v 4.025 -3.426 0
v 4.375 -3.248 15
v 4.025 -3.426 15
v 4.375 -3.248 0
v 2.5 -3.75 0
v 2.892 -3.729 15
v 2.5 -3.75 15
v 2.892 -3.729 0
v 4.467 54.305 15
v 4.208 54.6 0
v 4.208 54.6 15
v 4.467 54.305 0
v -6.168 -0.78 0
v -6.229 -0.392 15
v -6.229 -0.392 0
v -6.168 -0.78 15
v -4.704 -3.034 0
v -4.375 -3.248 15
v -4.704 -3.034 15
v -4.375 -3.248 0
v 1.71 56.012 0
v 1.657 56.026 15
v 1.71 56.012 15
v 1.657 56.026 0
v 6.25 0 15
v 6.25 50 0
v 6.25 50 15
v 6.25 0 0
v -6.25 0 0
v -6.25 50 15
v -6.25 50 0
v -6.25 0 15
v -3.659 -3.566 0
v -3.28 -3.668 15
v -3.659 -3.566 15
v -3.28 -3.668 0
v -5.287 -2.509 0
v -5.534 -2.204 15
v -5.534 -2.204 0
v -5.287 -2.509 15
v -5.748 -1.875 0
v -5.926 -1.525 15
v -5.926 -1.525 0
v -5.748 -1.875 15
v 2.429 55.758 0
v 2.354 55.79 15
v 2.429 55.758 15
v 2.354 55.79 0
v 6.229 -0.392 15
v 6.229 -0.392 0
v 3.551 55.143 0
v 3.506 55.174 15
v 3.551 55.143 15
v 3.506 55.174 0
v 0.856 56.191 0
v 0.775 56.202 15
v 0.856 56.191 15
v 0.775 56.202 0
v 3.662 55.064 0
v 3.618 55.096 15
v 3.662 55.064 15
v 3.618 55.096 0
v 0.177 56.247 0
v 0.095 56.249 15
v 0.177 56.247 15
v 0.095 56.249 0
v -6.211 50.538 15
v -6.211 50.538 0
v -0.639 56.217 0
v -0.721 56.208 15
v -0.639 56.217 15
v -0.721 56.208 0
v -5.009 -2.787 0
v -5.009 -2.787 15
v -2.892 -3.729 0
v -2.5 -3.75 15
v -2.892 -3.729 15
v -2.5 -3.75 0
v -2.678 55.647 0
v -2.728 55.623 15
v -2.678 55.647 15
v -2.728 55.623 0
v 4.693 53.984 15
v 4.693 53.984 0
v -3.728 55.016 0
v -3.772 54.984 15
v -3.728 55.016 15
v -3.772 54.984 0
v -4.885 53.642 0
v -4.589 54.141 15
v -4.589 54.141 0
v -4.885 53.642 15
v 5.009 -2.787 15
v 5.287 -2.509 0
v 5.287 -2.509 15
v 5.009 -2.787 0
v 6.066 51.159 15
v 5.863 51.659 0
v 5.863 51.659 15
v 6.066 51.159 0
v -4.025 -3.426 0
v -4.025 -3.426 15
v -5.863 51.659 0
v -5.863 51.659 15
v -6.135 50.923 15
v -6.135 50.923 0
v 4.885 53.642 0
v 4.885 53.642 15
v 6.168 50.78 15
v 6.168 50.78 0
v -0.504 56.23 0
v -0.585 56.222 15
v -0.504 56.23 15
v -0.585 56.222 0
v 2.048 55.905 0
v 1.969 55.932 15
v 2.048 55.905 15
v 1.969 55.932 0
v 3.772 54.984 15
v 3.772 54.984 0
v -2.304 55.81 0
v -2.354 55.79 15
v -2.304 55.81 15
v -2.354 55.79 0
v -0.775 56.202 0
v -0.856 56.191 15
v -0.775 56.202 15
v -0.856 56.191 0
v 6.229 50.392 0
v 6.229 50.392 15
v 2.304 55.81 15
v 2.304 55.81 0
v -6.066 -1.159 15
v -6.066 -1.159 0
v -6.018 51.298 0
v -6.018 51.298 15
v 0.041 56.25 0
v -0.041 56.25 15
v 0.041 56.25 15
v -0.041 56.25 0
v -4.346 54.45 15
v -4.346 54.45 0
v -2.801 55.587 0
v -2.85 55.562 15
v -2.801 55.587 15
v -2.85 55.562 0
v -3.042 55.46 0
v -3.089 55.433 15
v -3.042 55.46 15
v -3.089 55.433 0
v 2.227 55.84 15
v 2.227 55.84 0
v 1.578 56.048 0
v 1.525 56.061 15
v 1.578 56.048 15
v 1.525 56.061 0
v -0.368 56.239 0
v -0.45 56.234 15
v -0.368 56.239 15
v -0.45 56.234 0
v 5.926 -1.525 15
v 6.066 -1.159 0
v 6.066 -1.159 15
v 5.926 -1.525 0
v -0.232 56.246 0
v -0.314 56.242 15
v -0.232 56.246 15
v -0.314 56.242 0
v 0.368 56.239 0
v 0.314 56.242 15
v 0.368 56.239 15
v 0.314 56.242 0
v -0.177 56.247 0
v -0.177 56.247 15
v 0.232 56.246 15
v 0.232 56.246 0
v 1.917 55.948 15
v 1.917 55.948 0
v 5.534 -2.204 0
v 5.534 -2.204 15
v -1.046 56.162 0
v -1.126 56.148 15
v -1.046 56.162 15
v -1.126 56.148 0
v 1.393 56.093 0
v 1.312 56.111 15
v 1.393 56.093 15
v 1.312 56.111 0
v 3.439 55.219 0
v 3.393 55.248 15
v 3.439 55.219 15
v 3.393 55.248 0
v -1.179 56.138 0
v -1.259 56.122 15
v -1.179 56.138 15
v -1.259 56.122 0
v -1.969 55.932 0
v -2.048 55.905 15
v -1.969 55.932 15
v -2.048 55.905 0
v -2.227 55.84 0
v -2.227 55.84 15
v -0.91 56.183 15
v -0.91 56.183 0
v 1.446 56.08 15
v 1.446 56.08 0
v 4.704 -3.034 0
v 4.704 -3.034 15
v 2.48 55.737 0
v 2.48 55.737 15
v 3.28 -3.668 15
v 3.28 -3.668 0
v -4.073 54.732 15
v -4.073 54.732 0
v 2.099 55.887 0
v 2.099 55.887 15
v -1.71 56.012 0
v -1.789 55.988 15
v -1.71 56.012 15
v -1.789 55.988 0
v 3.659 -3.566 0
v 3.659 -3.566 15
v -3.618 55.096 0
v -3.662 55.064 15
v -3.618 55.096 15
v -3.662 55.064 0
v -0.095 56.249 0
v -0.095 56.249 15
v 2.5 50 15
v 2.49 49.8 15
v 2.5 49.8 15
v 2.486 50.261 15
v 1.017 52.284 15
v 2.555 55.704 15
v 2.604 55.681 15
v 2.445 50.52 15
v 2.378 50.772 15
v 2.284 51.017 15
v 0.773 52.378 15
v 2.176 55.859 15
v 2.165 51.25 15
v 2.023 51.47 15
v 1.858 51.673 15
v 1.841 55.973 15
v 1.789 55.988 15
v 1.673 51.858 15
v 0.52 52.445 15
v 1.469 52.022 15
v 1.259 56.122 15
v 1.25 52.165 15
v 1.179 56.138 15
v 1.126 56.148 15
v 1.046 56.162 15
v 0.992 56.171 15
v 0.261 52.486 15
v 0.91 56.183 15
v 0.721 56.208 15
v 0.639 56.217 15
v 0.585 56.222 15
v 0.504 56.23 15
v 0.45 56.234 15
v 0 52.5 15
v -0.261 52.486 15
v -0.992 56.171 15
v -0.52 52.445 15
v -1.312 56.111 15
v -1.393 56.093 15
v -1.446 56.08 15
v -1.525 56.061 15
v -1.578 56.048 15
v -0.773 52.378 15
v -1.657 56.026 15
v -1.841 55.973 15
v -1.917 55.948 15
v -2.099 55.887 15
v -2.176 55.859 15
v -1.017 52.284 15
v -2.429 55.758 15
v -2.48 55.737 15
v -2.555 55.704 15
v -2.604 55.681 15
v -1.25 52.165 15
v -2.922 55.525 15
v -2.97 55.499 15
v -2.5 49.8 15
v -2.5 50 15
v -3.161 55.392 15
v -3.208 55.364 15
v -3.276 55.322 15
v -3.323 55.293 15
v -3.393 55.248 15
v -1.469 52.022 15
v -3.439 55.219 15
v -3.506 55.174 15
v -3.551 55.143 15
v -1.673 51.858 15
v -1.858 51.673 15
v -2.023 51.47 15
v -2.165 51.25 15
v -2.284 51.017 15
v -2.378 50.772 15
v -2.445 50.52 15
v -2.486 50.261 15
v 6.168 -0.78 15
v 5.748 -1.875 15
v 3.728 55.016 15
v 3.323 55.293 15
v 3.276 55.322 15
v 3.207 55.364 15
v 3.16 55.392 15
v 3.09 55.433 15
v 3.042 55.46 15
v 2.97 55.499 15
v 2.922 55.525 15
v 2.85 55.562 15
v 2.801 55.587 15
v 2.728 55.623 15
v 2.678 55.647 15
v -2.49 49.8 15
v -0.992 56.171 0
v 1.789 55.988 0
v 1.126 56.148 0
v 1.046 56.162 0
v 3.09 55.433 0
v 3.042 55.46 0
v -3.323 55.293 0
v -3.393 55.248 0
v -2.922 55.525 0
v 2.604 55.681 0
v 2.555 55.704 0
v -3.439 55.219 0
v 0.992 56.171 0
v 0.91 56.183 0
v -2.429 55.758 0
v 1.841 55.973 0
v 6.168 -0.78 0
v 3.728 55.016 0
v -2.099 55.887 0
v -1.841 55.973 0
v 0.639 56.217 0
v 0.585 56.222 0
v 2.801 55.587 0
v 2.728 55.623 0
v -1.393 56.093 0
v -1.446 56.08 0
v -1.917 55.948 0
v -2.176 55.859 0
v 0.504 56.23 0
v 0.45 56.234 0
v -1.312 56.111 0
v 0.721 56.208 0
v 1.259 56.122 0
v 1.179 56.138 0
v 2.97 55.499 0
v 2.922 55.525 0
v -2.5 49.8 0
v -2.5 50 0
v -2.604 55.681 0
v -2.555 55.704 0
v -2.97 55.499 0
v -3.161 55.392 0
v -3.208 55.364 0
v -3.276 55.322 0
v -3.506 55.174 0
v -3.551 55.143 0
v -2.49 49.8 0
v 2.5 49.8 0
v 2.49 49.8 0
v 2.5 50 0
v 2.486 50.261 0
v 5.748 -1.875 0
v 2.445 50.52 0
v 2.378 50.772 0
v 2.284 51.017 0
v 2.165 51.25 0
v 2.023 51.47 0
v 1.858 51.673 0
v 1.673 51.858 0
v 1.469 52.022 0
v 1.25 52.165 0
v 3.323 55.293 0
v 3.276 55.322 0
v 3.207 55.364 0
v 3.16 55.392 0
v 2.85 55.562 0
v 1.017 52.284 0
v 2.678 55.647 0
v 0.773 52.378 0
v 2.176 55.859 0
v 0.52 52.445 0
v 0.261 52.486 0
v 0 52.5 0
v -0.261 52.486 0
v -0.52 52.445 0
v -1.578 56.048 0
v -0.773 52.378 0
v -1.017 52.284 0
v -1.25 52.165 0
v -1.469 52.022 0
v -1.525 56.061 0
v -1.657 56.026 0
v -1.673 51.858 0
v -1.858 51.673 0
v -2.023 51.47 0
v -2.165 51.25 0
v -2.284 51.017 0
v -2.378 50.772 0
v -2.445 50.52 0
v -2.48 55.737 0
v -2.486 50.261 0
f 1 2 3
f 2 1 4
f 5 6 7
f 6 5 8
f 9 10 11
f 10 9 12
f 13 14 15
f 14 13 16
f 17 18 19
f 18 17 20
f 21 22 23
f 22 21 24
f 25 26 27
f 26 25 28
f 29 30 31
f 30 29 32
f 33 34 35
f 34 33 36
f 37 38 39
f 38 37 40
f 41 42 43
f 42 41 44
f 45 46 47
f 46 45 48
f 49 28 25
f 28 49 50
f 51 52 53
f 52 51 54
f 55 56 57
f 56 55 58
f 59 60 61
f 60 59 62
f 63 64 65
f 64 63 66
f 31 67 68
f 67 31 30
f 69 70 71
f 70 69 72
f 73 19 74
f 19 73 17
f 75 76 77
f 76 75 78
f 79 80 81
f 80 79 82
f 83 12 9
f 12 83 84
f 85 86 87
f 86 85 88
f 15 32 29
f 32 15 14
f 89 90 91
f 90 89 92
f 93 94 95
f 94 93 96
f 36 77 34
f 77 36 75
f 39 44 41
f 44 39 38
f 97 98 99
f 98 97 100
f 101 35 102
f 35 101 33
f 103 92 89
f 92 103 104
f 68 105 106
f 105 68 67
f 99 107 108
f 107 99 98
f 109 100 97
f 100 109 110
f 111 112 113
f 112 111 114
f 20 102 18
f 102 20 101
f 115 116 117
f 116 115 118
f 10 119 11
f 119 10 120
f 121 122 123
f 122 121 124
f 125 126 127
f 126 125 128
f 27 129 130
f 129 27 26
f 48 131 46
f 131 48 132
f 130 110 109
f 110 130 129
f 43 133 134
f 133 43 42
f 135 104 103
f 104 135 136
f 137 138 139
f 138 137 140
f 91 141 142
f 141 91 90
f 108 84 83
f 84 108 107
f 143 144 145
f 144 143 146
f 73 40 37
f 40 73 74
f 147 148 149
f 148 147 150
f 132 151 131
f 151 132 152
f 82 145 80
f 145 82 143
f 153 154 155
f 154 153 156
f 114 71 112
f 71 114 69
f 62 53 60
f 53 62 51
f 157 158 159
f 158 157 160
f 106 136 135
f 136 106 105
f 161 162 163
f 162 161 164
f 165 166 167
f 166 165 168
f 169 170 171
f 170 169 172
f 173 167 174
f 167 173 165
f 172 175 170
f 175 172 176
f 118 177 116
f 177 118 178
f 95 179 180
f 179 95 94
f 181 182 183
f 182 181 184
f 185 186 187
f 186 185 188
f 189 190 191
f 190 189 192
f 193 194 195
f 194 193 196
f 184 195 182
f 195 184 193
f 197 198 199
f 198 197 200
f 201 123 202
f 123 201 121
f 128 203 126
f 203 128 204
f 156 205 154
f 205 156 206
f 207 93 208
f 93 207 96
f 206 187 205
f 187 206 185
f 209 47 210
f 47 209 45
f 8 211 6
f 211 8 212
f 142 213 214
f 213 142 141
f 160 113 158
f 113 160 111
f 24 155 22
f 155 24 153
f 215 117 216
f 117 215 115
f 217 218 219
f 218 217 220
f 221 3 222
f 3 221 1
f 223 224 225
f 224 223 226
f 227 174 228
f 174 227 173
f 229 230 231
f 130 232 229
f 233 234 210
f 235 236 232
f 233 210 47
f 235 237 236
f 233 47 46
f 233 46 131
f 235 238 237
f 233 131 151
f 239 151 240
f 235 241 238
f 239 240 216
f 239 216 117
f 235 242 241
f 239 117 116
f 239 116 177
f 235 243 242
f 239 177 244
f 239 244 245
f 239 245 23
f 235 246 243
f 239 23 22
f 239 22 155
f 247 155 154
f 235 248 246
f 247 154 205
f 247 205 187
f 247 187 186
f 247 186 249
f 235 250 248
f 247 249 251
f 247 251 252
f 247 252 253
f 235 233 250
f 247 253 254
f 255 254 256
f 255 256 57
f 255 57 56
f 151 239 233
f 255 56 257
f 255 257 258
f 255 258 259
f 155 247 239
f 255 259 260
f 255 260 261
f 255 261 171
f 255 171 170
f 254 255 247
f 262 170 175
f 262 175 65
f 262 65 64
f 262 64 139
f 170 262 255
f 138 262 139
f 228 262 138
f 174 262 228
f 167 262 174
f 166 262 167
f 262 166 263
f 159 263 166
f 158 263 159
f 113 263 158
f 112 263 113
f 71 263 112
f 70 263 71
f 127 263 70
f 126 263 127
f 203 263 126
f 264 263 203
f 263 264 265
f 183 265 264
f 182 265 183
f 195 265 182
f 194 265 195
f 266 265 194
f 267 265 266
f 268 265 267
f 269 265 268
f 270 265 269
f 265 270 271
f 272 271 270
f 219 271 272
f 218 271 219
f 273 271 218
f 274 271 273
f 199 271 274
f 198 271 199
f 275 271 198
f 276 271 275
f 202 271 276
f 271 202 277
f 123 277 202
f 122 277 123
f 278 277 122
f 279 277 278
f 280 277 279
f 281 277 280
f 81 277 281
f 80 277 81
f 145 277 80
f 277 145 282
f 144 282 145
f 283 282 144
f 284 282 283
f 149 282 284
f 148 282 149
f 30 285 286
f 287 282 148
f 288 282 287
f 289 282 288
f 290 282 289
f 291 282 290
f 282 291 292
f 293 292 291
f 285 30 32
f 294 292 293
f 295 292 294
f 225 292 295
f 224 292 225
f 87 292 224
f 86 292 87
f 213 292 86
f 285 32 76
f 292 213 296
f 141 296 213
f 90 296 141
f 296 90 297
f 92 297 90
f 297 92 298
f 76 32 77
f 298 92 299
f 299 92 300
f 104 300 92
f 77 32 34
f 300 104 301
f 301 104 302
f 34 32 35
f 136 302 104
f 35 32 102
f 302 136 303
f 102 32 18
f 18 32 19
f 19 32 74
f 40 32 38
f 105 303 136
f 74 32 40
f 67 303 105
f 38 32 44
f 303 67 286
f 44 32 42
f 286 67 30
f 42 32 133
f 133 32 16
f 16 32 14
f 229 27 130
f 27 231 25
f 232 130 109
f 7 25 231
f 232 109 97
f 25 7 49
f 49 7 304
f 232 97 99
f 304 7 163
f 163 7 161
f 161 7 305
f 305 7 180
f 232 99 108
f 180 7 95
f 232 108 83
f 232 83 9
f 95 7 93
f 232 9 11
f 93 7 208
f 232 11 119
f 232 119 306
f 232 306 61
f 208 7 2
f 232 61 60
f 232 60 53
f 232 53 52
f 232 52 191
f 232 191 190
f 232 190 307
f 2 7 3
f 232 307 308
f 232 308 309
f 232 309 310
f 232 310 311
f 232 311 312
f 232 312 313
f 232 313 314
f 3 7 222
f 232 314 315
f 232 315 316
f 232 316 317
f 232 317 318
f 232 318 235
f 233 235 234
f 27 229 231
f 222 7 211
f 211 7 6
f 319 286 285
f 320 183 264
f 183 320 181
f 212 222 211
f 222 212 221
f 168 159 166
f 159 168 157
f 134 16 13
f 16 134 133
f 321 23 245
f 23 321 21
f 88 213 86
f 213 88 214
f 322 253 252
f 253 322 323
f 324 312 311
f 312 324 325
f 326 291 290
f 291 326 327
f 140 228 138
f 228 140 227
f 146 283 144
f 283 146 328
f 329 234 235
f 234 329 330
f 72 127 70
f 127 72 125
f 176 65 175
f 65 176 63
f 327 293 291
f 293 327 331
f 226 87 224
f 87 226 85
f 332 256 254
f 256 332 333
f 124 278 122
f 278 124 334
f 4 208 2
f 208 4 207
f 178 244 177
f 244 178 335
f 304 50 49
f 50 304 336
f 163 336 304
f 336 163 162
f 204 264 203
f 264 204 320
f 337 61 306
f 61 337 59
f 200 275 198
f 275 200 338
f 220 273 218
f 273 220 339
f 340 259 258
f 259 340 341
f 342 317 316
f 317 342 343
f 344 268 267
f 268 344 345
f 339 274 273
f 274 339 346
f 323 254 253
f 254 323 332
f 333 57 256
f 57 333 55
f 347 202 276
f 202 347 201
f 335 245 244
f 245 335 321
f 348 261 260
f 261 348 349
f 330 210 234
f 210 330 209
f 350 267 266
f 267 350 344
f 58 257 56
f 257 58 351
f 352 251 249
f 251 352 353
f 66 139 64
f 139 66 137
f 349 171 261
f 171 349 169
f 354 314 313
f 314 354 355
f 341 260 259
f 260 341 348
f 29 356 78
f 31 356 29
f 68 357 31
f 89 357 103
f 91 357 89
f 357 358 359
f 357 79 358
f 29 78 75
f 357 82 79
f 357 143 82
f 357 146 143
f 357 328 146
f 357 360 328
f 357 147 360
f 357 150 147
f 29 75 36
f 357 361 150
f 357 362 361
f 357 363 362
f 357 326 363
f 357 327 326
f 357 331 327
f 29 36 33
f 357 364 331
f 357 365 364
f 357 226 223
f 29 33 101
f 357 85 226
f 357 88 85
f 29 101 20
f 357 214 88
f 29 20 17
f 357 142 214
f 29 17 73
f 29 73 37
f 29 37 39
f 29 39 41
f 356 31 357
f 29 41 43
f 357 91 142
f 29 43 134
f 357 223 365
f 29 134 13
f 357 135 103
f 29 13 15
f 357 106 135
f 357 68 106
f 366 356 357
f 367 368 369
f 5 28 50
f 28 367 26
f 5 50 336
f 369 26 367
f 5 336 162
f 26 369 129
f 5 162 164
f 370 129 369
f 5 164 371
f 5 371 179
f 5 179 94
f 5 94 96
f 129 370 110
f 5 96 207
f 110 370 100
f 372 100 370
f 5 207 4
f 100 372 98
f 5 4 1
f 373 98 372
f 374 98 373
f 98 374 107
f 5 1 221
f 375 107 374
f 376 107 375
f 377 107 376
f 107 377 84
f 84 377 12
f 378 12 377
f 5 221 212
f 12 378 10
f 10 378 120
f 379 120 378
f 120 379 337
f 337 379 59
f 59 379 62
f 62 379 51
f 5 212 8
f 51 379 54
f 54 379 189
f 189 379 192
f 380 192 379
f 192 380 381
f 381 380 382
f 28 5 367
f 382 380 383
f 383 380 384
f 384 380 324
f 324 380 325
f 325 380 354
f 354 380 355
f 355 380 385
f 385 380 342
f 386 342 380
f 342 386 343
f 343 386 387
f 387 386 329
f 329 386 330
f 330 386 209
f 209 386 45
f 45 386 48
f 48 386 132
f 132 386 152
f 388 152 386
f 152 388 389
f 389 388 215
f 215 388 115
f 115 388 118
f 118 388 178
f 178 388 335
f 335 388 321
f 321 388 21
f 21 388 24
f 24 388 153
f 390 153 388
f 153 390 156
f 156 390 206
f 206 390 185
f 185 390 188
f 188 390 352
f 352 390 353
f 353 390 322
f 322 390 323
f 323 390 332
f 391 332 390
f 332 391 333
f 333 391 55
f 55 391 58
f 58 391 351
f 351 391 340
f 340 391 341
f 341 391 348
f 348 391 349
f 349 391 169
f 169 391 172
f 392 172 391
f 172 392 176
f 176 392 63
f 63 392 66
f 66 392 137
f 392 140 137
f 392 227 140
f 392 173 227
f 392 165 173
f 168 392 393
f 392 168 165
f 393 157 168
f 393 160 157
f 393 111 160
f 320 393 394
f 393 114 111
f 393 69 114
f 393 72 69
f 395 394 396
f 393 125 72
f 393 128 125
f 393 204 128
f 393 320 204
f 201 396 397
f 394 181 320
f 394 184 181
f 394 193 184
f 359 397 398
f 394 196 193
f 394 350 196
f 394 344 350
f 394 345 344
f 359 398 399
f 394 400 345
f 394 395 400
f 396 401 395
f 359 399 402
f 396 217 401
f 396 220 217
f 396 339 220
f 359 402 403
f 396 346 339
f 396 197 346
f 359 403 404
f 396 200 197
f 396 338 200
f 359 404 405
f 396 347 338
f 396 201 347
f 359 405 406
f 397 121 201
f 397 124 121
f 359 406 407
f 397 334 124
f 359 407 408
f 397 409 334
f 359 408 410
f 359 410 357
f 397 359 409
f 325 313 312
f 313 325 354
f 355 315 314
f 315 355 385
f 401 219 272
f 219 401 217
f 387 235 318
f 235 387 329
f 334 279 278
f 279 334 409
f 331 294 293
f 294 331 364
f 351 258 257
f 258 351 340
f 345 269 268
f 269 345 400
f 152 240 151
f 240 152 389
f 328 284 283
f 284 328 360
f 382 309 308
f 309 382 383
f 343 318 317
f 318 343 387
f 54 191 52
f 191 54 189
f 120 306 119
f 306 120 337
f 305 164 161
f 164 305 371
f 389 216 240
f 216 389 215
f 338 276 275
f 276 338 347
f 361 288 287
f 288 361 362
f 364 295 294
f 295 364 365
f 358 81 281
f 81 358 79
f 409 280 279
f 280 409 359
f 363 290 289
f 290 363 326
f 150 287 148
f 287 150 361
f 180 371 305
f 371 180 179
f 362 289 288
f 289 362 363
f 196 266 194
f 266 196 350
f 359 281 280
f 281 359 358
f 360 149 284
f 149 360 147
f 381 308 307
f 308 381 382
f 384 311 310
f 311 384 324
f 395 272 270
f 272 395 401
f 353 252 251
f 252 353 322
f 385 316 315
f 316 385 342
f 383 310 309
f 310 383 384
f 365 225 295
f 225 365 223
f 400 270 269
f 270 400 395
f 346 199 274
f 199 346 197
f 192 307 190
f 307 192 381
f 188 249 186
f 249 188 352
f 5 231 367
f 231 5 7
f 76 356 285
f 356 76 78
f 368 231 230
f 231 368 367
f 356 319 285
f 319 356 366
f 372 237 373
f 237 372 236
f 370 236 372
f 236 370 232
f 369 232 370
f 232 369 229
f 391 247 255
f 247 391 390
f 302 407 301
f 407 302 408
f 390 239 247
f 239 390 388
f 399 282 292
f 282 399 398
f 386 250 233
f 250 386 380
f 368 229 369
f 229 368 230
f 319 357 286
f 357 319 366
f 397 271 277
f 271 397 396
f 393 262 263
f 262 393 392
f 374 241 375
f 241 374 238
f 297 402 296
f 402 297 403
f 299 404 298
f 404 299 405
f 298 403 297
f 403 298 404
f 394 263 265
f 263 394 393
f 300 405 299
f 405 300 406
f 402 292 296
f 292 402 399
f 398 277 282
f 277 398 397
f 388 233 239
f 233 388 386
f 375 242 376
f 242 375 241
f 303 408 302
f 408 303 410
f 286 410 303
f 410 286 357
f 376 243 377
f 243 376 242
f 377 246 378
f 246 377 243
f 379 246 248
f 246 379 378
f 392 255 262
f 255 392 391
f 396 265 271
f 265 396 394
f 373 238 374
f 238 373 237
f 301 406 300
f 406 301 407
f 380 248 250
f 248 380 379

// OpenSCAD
$fn = 60;difference() {
	linear_extrude(height = 15.0) {
		difference() {
			offset(r = 3.75) {
				polygon(points = [[-2.5, 0], [-2.5, 50.0], [-1.5219035725218015, 51.98338335072809], [-1.478274120908956, 52.01611151066871], [-1.4339410908776153, 52.04788011072248], [-1.3889255825490059, 52.07867403075636], [-1.34324902086706, 52.10847861453222], [-1.2969331454013042, 52.13727967668237], [-1.2500000000000004, 52.1650635094611], [-1.2024719222984697, 52.19181688926877], [-1.1543715330875854, 52.21752708294555], [-1.105721725547503, 52.242181853831724], [-1.0565456543517484, 52.265769467591625], [-1.0068667246468435, 52.28827869779862], [-0.9567085809127247, 52.30969883127822], [-0.906095095709254, 52.330019673207], [-0.8550503583141718, 52.34923155196477], [-0.803598663257904, 52.36732532373777], [-0.7517644987606829, 52.38429237687057], [-0.6995725350774802, 52.40012463596482], [-0.6470476127563021, 52.41481456572267], [-0.594214730815433, 52.42835517453315], [-0.5410990348452576, 52.44074001779983], [-0.48772580504032104, 52.45196320100808], [-0.43412044416732576, 52.46201938253052], [-0.38030846547479175, 52.4709037761694], [-0.32631548055012954, 52.478612153434526], [-0.2721671871299115, 52.4851408455558], [-0.2178893568691456, 52.49048674522936], [-0.16350782307535786, 52.49464730809651], [-0.10904846841334027, 52.49762055395465], [-0.05453721258640258, 52.499405067699776], [1.5308084989341916e-16, 52.5], [0.0545372125864029, 52.499405067699776], [0.10904846841334001, 52.49762055395465], [0.1635078230753576, 52.49464730809651], [0.21788935686914535, 52.49048674522936], [0.2721671871299113, 52.4851408455558], [0.3263154805501287, 52.478612153434526], [0.38030846547479147, 52.4709037761694], [0.43412044416732554, 52.46201938253052], [0.48772580504032026, 52.45196320100808], [0.5410990348452572, 52.44074001779983], [0.5942147308154327, 52.42835517453315], [0.6470476127563018, 52.41481456572267], [0.6995725350774801, 52.40012463596482], [0.7517644987606832, 52.38429237687057], [0.8035986632579042, 52.36732532373777], [0.8550503583141721, 52.34923155196477], [0.9060950957092542, 52.330019673207], [0.956708580912724, 52.30969883127822], [1.0068667246468426, 52.28827869779862], [1.0565456543517486, 52.265769467591625], [1.1057217255475031, 52.242181853831724], [1.1543715330875848, 52.21752708294555], [1.202471922298469, 52.19181688926877], [1.2499999999999998, 52.1650635094611], [1.2969331454013033, 52.13727967668237], [1.343249020867059, 52.10847861453222], [1.3889255825490057, 52.07867403075636], [1.4339410908776151, 52.04788011072248], [1.4782741209089558, 52.01611151066871], [1.5219035725218015, 51.98338335072809], [2.5, 50.0], [2.5, 0]]);
			}
			offset(r = -3.75) {
				polygon(points = [[-2.5, 0], [-2.5, 50.0], [-1.5219035725218015, 51.98338335072809], [-1.478274120908956, 52.01611151066871], [-1.4339410908776153, 52.04788011072248], [-1.3889255825490059, 52.07867403075636], [-1.34324902086706, 52.10847861453222], [-1.2969331454013042, 52.13727967668237], [-1.2500000000000004, 52.1650635094611], [-1.2024719222984697, 52.19181688926877], [-1.1543715330875854, 52.21752708294555], [-1.105721725547503, 52.242181853831724], [-1.0565456543517484, 52.265769467591625], [-1.0068667246468435, 52.28827869779862], [-0.9567085809127247, 52.30969883127822], [-0.906095095709254, 52.330019673207], [-0.8550503583141718, 52.34923155196477], [-0.803598663257904, 52.36732532373777], [-0.7517644987606829, 52.38429237687057], [-0.6995725350774802, 52.40012463596482], [-0.6470476127563021, 52.41481456572267], [-0.594214730815433, 52.42835517453315], [-0.5410990348452576, 52.44074001779983], [-0.48772580504032104, 52.45196320100808], [-0.43412044416732576, 52.46201938253052], [-0.38030846547479175, 52.4709037761694], [-0.32631548055012954, 52.478612153434526], [-0.2721671871299115, 52.4851408455558], [-0.2178893568691456, 52.49048674522936], [-0.16350782307535786, 52.49464730809651], [-0.10904846841334027, 52.49762055395465], [-0.05453721258640258, 52.499405067699776], [1.5308084989341916e-16, 52.5], [0.0545372125864029, 52.499405067699776], [0.10904846841334001, 52.49762055395465], [0.1635078230753576, 52.49464730809651], [0.21788935686914535, 52.49048674522936], [0.2721671871299113, 52.4851408455558], [0.3263154805501287, 52.478612153434526], [0.38030846547479147, 52.4709037761694], [0.43412044416732554, 52.46201938253052], [0.48772580504032026, 52.45196320100808], [0.5410990348452572, 52.44074001779983], [0.5942147308154327, 52.42835517453315], [0.6470476127563018, 52.41481456572267], [0.6995725350774801, 52.40012463596482], [0.7517644987606832, 52.38429237687057], [0.8035986632579042, 52.36732532373777], [0.8550503583141721, 52.34923155196477], [0.9060950957092542, 52.330019673207], [0.956708580912724, 52.30969883127822], [1.0068667246468426, 52.28827869779862], [1.0565456543517486, 52.265769467591625], [1.1057217255475031, 52.242181853831724], [1.1543715330875848, 52.21752708294555], [1.202471922298469, 52.19181688926877], [1.2499999999999998, 52.1650635094611], [1.2969331454013033, 52.13727967668237], [1.343249020867059, 52.10847861453222], [1.3889255825490057, 52.07867403075636], [1.4339410908776151, 52.04788011072248], [1.4782741209089558, 52.01611151066871], [1.5219035725218015, 51.98338335072809], [2.5, 50.0], [2.5, 0]]);
			}
		}
	}
	translate(v = [-2.5, -1000, 0]) {
		cube(center = false, size = [5.0, 1049.8, 17.0]);
	}
	translate(v = [0, 50.0, 0]) {
		linear_extrude(height = 17.0) {
			circle($fn = 60, r = 2.5);
		}
	}
}
